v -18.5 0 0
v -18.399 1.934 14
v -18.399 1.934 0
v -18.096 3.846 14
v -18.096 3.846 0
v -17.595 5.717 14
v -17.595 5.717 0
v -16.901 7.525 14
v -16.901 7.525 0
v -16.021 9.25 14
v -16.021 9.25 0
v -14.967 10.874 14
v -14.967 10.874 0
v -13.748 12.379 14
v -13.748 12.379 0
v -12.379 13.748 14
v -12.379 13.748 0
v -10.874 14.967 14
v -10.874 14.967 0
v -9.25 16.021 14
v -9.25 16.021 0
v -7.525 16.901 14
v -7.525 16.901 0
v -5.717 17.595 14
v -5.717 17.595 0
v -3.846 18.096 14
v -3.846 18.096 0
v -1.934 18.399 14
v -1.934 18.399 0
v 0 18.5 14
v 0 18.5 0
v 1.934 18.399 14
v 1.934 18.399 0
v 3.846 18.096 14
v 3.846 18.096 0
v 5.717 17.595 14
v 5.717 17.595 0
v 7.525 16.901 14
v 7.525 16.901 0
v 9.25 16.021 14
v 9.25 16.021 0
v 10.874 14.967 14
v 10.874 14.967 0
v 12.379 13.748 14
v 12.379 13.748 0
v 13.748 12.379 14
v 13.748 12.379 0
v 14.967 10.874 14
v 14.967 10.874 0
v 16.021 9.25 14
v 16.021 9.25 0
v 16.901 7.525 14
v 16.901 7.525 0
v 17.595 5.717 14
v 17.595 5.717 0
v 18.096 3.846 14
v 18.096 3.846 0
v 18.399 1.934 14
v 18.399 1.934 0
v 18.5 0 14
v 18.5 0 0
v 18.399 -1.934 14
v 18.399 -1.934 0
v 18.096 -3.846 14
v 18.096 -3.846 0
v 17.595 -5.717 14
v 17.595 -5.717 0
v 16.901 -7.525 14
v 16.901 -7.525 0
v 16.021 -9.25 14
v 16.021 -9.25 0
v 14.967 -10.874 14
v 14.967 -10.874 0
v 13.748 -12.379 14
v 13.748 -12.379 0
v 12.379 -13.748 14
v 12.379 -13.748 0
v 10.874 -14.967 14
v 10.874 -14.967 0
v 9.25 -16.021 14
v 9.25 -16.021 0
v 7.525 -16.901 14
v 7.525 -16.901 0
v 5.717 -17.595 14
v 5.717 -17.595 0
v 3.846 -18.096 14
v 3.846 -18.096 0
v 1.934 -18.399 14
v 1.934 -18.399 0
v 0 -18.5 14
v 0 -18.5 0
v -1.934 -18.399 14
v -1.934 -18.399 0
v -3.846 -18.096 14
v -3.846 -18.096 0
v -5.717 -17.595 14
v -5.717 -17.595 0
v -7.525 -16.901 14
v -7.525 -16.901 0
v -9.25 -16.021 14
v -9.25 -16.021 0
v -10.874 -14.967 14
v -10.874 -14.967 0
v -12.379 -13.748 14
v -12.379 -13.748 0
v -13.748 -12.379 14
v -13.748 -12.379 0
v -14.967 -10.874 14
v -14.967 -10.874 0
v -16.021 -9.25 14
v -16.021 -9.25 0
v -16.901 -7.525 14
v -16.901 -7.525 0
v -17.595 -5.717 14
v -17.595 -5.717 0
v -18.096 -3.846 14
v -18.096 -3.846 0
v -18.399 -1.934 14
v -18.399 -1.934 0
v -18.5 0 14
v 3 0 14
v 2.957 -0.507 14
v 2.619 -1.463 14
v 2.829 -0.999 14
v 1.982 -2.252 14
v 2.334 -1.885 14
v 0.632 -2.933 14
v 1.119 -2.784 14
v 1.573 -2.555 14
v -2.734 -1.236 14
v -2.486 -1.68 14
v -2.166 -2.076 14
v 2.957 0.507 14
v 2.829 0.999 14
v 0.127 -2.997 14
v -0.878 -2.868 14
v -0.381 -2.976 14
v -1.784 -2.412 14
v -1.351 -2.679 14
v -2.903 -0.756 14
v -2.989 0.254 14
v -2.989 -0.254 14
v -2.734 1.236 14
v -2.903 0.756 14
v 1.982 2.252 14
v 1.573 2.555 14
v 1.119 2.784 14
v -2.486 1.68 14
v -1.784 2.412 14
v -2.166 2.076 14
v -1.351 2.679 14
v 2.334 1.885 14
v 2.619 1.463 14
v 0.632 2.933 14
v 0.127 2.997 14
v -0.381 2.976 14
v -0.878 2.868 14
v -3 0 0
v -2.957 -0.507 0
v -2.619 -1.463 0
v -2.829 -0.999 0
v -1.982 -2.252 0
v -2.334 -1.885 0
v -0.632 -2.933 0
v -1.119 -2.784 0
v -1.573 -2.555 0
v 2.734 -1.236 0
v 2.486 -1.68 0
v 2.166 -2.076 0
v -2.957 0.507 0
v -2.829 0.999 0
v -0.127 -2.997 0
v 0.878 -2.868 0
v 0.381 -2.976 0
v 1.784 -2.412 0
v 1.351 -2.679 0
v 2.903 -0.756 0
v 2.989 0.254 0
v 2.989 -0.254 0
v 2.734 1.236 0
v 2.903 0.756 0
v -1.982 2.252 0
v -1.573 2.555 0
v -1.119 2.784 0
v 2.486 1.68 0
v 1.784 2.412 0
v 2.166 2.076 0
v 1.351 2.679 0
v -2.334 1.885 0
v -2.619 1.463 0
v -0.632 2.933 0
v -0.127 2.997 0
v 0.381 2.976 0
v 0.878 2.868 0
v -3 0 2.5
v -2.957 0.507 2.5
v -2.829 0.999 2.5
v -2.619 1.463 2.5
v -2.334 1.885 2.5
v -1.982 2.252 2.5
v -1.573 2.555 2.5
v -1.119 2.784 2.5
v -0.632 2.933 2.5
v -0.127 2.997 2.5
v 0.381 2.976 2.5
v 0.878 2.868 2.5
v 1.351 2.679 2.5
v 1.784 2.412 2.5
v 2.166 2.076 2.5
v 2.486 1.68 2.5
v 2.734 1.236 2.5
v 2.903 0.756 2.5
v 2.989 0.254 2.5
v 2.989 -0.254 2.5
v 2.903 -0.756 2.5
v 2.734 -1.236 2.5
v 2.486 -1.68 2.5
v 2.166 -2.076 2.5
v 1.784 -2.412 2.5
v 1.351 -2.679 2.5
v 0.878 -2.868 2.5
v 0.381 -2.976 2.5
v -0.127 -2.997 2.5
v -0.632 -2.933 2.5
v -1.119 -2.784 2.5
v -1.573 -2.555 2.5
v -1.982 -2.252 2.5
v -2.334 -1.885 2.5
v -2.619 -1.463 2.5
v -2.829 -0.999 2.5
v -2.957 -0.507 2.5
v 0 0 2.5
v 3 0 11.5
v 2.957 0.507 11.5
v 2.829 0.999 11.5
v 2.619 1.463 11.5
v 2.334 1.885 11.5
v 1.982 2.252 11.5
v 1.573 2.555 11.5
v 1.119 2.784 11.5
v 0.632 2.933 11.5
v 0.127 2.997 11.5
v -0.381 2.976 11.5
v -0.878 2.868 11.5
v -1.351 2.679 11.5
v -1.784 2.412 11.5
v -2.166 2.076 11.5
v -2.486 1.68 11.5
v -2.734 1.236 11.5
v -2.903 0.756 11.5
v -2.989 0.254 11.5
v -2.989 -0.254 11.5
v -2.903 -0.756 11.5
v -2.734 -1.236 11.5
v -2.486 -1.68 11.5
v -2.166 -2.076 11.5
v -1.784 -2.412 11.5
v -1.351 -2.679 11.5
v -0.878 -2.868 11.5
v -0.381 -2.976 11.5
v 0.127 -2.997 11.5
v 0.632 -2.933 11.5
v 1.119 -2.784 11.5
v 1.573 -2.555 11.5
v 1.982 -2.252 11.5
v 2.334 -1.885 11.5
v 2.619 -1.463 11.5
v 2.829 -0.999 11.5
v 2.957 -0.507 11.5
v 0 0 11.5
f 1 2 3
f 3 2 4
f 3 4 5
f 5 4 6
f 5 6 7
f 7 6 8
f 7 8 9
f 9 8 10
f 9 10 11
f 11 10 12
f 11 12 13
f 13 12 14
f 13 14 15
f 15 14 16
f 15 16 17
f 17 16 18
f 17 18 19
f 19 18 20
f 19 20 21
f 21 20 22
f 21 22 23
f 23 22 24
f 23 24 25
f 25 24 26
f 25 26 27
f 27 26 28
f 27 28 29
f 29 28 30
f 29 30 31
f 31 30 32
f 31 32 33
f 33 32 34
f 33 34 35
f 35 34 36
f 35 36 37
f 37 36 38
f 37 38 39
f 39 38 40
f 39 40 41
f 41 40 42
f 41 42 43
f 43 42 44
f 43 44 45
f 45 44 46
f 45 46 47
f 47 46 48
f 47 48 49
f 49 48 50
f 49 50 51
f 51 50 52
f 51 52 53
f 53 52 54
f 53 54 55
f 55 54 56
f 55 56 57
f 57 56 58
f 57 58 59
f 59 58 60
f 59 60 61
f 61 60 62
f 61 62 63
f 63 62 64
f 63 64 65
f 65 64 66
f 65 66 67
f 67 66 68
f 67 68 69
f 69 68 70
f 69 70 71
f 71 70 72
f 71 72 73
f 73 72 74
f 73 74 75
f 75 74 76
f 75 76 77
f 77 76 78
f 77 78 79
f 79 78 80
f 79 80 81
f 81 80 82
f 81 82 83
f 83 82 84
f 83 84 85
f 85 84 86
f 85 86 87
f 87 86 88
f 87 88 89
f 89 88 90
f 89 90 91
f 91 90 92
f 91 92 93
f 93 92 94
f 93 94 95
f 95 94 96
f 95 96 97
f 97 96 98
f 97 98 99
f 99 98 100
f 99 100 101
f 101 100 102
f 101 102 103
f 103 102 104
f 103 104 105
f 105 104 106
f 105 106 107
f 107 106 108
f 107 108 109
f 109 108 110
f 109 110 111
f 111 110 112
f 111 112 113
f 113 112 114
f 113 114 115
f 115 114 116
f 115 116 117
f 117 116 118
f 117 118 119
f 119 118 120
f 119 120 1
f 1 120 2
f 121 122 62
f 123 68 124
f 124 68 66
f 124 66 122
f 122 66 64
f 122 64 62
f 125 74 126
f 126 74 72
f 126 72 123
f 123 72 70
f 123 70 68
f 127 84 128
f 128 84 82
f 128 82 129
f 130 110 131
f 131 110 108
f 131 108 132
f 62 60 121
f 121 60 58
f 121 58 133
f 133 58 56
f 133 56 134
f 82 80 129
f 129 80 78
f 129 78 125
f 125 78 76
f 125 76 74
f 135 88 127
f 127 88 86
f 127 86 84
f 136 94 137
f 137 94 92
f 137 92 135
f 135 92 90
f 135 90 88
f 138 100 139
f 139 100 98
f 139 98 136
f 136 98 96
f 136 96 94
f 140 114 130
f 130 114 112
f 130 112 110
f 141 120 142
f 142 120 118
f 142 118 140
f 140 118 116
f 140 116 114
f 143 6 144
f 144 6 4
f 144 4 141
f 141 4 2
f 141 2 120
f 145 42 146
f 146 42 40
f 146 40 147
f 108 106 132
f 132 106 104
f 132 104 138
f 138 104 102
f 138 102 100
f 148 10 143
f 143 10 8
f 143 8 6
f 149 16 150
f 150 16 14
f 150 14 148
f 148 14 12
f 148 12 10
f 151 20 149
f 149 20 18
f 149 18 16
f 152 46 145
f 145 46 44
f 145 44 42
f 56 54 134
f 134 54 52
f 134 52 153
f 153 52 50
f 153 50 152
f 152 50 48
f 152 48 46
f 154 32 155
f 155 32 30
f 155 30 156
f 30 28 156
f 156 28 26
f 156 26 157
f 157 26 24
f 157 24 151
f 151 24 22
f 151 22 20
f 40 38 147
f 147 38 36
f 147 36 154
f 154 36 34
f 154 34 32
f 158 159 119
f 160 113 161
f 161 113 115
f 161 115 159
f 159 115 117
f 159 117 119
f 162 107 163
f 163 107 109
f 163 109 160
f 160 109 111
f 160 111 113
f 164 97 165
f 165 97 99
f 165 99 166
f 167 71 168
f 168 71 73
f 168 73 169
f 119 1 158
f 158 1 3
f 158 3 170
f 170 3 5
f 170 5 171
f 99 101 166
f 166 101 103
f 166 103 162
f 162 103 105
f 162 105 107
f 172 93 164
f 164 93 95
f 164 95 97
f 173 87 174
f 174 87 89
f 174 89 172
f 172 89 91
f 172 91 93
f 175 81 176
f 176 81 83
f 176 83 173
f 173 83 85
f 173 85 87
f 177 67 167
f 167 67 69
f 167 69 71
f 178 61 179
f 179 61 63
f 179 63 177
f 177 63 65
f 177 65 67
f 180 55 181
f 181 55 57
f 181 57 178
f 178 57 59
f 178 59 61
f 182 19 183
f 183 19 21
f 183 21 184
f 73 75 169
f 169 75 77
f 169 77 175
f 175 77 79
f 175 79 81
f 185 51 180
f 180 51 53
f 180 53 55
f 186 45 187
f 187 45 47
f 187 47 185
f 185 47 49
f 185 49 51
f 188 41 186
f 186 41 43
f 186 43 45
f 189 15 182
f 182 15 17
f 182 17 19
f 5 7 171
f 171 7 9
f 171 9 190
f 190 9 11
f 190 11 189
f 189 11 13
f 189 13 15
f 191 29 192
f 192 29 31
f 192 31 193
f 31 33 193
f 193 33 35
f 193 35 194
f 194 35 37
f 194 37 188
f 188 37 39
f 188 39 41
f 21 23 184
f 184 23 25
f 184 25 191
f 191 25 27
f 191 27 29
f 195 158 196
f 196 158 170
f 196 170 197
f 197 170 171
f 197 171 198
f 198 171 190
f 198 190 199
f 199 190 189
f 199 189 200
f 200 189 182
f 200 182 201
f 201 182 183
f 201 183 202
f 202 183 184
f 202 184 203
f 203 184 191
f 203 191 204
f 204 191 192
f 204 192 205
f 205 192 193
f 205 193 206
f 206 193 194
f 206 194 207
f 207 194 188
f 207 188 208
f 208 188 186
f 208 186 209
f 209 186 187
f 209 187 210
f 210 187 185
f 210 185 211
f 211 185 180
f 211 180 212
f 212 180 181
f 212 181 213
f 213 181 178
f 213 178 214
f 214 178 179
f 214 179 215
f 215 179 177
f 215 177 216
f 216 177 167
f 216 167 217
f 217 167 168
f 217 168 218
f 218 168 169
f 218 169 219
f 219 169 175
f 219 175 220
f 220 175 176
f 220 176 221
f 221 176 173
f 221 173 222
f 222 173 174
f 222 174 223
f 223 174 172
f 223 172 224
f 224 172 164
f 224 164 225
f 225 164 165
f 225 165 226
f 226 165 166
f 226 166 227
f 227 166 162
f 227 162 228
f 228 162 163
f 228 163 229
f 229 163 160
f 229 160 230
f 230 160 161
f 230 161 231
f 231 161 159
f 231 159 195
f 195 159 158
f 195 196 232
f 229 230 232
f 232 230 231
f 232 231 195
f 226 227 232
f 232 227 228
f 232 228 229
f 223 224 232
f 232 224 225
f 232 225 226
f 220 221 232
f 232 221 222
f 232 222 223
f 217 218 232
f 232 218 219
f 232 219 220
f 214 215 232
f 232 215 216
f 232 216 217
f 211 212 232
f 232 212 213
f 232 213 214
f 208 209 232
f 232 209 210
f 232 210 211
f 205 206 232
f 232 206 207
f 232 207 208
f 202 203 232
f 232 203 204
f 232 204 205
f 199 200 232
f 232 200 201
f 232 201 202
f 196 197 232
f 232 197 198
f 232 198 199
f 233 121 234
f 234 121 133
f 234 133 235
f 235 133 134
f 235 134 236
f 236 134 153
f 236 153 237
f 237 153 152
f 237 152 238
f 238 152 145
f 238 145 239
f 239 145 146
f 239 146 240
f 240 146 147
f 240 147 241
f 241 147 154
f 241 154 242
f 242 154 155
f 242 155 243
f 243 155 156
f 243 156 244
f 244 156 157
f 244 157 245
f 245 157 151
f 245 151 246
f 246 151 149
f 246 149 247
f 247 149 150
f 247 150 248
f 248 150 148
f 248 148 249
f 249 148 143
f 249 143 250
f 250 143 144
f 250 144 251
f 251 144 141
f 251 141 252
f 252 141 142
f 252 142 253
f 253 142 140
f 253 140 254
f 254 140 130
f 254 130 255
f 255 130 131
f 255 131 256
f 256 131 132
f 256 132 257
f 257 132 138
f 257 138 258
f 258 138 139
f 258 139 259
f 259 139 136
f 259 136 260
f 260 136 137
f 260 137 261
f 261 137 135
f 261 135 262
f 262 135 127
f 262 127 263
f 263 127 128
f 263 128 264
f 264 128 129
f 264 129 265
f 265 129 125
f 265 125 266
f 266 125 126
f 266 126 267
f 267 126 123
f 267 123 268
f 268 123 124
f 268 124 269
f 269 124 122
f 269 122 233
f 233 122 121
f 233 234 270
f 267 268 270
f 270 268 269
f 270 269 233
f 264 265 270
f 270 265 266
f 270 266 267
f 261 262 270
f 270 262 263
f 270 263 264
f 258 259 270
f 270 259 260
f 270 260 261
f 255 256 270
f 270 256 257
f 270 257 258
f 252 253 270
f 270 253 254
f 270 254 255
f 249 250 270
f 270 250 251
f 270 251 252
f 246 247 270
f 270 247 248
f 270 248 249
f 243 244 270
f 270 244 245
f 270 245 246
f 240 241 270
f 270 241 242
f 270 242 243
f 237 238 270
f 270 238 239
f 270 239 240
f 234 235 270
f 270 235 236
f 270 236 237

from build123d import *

# Parameters (mm, degrees)
SKETCH_1_R          = 18.5
EXTRUDE_1_DEPTH     = 14
SKETCH_2_R          = 3
CUT_EXTRUDE_1_DEPTH = 2.5
SKETCH_3_R          = 3
CUT_EXTRUDE_2_DEPTH = 2.5


with BuildPart() as part:
    # 草图1 → 凸台-拉伸1 (new body)
    with BuildSketch(Plane.XY):
        Circle(SKETCH_1_R)
    extrude(amount=EXTRUDE_1_DEPTH)

    # 草图2 → 切除-拉伸1 (cut)
    with BuildSketch(Plane(origin=(0, 0, 0), x_dir=(-1, 0, 0), z_dir=(0, 0, -1))):
        Circle(SKETCH_2_R)
    extrude(amount=-CUT_EXTRUDE_1_DEPTH, mode=Mode.SUBTRACT)

    # 草图3 → 切除-拉伸2 (cut)
    with BuildSketch(Plane.XY.offset(14)):
        Circle(SKETCH_3_R)
    extrude(amount=-CUT_EXTRUDE_2_DEPTH, mode=Mode.SUBTRACT)


solid = part.part
